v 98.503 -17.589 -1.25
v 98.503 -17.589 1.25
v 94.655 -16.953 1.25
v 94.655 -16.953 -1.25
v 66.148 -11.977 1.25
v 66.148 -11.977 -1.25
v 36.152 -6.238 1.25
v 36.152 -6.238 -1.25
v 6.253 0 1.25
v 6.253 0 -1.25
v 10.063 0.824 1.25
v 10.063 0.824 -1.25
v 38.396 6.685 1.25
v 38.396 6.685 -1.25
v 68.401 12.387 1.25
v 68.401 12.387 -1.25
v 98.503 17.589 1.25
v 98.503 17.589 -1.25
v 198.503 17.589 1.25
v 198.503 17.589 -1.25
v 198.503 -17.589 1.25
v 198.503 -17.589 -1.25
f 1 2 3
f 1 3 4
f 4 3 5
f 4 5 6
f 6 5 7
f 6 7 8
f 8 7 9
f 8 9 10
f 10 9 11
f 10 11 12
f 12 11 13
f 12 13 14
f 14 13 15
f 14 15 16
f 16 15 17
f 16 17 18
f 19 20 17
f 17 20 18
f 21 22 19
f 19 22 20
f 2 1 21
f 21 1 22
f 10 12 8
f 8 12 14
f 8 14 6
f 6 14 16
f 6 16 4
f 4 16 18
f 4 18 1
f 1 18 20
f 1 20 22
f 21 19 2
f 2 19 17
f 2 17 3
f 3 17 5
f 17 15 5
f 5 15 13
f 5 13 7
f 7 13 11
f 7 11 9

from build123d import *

# Parameters (mm, degrees)
BOSS_EXTRUDE1_DEPTH      = 1.25
BOSS_EXTRUDE1_DEPTH_BACK = 1.25


with BuildPart() as part:
    # Sketch2 → Boss-Extrude1 (new, two sides: drawn at the far end of the back side and taken through both)
    with BuildSketch(Plane.XY.offset(-BOSS_EXTRUDE1_DEPTH_BACK)):
        with BuildLine():
            Line((98.502891266, 17.588765104), (198.502891266, 17.588765104))
            Line((198.502891266, 17.588765104), (198.502891266, -17.588765104))
            Line((198.502891266, -17.588765104), (98.502891266, -17.588765104))
            add(Edge.make_bspline(
                [(6.253387475, 0), (52.148844411, -9.975392509), (98.502891266, -17.588765104)],
                knots=[0, 0, 0, 1, 1, 1], degree=2))
            add(Edge.make_bspline(
                [(6.253387475, 0), (52.148844411, 9.975392509), (98.502891266, 17.588765104)],
                knots=[0, 0, 0, 1, 1, 1], degree=2))
        make_face()
    extrude(amount=BOSS_EXTRUDE1_DEPTH + BOSS_EXTRUDE1_DEPTH_BACK)


solid = part.part
